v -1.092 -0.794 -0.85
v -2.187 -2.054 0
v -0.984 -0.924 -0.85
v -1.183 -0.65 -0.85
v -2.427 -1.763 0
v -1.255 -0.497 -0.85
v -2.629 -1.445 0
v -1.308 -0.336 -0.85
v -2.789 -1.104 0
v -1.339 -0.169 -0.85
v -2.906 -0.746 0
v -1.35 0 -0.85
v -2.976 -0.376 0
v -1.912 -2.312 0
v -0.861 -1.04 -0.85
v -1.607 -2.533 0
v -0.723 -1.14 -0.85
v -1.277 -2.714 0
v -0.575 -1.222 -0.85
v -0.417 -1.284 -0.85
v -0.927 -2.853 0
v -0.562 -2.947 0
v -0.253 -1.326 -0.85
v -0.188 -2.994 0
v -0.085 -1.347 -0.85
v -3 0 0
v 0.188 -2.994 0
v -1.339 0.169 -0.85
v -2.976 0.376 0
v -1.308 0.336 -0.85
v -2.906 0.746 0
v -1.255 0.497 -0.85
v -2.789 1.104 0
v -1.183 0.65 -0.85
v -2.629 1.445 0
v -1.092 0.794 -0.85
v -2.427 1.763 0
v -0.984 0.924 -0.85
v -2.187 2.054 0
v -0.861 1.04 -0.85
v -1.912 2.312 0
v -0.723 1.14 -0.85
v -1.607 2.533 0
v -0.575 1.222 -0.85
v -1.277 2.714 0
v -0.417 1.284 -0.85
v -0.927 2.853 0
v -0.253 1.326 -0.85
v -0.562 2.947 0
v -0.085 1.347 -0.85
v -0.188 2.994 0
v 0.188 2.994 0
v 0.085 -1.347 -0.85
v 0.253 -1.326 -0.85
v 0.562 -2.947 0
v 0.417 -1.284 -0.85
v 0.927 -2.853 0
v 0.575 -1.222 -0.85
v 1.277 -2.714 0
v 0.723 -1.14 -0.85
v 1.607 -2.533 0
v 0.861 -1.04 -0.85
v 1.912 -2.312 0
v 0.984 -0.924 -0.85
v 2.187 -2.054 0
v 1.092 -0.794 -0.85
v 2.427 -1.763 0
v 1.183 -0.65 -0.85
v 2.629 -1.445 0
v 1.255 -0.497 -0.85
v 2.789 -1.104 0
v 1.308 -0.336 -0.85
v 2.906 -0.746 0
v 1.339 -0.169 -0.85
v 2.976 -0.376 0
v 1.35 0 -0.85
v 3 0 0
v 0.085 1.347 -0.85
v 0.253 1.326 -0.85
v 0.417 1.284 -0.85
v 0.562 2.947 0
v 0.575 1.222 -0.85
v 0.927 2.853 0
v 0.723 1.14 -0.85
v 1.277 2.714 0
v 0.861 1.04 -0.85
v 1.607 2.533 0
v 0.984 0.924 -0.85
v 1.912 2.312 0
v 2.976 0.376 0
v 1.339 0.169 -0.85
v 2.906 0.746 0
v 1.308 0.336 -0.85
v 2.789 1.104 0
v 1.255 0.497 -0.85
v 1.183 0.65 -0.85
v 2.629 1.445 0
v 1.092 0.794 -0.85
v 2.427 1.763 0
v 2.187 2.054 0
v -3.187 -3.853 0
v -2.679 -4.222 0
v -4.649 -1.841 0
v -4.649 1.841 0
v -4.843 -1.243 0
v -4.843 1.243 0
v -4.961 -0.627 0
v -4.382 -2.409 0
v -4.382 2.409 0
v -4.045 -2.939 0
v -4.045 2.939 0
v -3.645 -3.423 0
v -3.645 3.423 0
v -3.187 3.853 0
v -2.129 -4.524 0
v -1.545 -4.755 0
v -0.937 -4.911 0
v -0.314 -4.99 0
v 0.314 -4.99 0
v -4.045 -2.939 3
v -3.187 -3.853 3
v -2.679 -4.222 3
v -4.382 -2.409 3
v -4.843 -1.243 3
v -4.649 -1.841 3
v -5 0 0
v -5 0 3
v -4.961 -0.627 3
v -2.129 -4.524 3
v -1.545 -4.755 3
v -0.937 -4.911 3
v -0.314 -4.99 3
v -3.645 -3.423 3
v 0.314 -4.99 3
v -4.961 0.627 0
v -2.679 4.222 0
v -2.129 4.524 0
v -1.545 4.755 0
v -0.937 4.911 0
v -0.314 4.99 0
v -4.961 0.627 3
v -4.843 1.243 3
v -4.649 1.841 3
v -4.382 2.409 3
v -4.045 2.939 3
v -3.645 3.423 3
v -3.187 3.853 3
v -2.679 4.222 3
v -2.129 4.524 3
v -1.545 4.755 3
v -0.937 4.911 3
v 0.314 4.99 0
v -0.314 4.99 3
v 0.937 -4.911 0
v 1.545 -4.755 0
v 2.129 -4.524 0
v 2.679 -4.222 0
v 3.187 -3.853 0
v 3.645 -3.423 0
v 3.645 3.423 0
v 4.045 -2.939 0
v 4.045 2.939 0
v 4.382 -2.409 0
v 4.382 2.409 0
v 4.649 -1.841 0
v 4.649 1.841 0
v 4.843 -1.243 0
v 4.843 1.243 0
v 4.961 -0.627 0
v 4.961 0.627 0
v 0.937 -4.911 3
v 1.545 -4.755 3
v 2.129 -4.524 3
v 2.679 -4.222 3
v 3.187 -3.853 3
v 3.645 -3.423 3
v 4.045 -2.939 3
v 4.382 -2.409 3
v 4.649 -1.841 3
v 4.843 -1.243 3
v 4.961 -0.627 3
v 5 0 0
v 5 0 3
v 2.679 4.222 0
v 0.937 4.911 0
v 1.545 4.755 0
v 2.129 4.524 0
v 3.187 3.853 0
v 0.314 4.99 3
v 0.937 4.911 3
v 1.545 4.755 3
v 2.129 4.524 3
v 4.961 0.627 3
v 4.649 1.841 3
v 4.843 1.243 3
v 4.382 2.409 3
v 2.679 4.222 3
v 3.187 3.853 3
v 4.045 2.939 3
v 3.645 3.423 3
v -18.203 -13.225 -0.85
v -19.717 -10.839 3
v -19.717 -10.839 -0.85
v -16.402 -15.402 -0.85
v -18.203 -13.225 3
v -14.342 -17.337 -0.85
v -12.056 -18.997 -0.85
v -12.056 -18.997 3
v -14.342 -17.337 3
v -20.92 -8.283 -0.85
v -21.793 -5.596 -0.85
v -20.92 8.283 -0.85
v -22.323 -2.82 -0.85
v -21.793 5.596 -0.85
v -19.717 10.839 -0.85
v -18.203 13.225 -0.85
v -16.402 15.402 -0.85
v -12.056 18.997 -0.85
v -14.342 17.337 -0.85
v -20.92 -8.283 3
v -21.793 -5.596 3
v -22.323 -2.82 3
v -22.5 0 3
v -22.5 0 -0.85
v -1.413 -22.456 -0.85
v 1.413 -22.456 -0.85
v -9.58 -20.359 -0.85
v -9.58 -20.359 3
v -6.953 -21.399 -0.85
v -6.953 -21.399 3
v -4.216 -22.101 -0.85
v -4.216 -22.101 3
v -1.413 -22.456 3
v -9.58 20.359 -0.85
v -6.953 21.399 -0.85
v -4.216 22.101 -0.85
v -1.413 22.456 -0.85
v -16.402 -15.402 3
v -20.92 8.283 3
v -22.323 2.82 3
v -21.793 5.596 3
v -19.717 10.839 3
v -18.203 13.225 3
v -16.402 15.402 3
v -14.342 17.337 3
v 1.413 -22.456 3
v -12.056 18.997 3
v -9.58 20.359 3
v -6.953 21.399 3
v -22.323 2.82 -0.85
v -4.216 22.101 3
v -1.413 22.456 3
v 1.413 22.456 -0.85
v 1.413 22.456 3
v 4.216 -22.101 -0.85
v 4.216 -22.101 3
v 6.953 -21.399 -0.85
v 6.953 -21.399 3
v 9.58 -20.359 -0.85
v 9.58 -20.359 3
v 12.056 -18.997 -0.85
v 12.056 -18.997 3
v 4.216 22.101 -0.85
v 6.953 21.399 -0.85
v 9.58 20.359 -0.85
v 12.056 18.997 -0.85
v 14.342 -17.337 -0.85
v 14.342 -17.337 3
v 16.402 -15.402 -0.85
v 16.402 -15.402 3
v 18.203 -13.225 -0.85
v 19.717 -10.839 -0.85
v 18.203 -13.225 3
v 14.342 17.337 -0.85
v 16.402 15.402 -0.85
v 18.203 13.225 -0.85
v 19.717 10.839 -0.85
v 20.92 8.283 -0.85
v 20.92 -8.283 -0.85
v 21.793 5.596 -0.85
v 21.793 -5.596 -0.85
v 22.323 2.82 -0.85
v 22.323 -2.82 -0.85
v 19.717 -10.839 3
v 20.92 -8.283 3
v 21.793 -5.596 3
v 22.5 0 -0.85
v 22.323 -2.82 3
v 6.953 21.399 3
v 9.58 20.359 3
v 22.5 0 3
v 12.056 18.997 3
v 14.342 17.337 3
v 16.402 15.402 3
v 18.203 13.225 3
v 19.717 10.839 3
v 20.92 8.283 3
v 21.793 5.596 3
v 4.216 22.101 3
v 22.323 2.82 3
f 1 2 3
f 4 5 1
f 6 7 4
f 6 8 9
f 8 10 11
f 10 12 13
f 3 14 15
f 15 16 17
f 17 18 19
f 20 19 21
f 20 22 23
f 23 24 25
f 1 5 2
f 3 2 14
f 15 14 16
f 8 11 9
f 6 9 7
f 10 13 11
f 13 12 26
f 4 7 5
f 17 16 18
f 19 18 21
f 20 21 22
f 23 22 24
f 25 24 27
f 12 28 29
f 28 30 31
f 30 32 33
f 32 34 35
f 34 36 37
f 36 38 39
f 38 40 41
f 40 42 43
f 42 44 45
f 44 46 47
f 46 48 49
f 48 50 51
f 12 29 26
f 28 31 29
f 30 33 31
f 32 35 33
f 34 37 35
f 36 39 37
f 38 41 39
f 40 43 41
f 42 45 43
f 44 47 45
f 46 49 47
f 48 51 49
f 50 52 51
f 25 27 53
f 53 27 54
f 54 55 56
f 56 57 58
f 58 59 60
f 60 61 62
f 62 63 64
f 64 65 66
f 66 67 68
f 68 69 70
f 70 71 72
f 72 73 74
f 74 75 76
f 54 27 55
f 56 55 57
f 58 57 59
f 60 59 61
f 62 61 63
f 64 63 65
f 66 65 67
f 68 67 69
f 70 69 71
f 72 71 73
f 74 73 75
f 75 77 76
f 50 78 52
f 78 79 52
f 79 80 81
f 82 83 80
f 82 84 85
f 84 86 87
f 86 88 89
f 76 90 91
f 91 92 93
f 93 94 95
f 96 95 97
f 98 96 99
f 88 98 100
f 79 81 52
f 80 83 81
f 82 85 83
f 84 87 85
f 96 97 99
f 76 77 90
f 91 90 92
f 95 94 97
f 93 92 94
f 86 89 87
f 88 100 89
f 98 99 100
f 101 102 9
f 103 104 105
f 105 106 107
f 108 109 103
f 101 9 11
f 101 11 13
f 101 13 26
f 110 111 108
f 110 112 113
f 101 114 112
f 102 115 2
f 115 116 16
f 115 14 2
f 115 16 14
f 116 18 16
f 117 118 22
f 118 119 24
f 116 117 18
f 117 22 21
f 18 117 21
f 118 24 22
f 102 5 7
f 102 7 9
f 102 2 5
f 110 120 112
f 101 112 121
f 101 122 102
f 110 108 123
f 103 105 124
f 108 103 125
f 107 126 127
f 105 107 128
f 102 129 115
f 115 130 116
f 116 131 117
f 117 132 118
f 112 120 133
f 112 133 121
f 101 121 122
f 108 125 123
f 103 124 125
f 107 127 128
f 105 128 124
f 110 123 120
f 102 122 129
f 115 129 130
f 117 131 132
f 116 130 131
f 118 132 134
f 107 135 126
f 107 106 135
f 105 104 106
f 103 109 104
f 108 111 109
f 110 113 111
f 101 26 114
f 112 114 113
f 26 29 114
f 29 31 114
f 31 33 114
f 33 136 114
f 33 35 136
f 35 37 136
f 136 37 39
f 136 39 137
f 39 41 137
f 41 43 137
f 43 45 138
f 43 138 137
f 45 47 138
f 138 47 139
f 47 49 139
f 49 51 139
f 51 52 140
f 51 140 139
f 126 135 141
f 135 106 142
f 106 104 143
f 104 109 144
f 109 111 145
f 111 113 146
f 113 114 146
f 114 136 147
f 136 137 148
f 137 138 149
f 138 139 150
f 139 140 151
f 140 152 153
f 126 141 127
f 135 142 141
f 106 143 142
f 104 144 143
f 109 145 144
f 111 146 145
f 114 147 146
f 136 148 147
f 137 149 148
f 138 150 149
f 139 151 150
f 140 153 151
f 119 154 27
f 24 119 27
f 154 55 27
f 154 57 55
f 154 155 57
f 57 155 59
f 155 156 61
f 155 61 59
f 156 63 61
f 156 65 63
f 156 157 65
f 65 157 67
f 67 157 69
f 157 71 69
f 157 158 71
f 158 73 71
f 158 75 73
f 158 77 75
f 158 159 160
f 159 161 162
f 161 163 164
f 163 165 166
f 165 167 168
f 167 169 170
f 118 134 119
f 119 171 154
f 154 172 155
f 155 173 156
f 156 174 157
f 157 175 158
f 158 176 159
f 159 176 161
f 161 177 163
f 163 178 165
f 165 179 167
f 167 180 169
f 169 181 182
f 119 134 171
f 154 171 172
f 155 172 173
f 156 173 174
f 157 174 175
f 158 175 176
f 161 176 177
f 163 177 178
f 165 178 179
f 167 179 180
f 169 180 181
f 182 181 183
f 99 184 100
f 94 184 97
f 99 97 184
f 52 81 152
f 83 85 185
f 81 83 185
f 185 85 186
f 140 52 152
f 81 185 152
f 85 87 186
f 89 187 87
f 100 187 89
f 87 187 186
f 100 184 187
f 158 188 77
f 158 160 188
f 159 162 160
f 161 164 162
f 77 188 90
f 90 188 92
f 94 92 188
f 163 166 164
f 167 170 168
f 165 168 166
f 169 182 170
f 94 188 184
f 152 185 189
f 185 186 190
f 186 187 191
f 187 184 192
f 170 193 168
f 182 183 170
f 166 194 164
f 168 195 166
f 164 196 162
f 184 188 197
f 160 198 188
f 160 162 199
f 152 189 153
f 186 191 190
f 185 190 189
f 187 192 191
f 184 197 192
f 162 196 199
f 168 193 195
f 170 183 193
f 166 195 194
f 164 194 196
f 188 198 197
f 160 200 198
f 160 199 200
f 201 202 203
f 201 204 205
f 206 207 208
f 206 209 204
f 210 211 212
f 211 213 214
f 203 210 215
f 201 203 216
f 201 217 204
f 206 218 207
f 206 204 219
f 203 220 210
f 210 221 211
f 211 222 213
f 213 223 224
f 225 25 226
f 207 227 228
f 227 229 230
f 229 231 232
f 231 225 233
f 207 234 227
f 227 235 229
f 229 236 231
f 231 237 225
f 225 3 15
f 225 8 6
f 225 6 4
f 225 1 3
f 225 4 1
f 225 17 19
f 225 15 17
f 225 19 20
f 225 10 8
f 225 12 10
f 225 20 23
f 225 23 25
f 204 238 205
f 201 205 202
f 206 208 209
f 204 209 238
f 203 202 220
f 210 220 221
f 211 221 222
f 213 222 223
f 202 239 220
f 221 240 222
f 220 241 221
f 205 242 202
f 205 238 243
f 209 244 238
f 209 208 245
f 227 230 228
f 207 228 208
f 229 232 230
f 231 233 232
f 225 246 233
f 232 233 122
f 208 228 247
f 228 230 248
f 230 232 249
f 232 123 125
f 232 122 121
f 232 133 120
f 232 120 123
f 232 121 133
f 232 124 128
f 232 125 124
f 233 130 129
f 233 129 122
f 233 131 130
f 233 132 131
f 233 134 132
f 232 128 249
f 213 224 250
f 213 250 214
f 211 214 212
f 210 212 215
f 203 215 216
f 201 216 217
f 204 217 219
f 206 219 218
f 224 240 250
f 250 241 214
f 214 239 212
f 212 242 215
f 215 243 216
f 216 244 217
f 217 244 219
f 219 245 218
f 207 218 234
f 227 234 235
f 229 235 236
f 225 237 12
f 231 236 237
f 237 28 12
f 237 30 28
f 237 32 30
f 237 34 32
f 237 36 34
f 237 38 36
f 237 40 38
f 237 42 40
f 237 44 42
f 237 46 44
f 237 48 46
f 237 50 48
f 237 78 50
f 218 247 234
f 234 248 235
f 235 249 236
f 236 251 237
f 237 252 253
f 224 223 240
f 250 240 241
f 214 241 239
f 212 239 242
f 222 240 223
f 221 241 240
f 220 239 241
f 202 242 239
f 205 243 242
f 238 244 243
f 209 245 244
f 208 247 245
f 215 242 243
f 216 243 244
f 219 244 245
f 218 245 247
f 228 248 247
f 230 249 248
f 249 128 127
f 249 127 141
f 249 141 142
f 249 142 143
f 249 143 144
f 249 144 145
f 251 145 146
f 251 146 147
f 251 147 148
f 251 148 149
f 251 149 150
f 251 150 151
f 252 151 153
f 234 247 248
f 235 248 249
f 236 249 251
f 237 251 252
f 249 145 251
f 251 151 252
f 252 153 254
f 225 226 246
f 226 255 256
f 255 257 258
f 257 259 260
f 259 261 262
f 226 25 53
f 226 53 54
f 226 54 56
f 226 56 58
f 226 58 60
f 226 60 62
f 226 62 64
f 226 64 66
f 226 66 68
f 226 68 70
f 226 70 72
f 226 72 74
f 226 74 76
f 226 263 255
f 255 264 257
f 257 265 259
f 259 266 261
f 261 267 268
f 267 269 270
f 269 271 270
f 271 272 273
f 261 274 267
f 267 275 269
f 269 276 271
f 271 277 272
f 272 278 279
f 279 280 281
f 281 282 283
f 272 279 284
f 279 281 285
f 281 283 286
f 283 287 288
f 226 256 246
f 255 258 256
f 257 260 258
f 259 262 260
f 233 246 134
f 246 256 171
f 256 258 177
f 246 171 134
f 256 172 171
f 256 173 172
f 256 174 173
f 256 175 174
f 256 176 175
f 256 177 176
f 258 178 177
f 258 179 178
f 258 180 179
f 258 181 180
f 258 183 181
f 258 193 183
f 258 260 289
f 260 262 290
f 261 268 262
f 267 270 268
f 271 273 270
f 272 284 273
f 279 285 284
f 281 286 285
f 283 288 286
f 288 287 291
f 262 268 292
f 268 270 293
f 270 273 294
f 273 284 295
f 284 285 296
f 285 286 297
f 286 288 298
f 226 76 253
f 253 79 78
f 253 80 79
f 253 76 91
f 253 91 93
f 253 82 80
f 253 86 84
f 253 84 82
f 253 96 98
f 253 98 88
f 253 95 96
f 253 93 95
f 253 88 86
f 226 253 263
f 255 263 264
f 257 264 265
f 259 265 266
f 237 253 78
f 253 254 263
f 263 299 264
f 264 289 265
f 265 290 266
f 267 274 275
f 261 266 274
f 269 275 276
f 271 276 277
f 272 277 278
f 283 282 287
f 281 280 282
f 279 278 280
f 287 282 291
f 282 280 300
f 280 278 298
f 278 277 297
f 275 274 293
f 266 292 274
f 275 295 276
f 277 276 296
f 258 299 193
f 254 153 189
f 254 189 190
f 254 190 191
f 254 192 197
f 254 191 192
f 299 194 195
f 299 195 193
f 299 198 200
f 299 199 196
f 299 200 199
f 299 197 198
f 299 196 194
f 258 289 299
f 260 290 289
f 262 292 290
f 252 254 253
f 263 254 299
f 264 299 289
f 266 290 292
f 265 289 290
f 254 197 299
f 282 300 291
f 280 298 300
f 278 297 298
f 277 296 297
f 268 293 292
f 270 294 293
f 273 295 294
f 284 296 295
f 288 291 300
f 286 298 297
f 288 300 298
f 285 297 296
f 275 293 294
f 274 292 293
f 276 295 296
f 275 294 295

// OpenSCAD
$fn = 50;


difference() {
	union() {
		translate(v = [0, 0, -0.8500000000]) {
			cylinder(h = 3.8500000000, r = 22.5000000000);
		}
	}
	union() {
		translate(v = [0, 0, 0]) {
			rotate(a = [0, 0, 0]) {
				difference() {
					union() {
						translate(v = [0, 0, -3.8500000000]) {
							cylinder(h = 3.8500000000, r = 1.0000000000);
						}
						translate(v = [0, 0, -0.8500000000]) {
							cylinder(h = 0.8500000000, r1 = 1.3500000000, r2 = 3.0000000000);
						}
						translate(v = [0, 0, -3.8500000000]) {
							cylinder(h = 3.8500000000, r = 1.3500000000);
						}
						translate(v = [0, 0, -3.8500000000]) {
							cylinder(h = 3.8500000000, r = 1.0000000000);
						}
					}
					union();
				}
			}
		}
		#cylinder(h = 3, r = 5.0000000000);
	}
}
